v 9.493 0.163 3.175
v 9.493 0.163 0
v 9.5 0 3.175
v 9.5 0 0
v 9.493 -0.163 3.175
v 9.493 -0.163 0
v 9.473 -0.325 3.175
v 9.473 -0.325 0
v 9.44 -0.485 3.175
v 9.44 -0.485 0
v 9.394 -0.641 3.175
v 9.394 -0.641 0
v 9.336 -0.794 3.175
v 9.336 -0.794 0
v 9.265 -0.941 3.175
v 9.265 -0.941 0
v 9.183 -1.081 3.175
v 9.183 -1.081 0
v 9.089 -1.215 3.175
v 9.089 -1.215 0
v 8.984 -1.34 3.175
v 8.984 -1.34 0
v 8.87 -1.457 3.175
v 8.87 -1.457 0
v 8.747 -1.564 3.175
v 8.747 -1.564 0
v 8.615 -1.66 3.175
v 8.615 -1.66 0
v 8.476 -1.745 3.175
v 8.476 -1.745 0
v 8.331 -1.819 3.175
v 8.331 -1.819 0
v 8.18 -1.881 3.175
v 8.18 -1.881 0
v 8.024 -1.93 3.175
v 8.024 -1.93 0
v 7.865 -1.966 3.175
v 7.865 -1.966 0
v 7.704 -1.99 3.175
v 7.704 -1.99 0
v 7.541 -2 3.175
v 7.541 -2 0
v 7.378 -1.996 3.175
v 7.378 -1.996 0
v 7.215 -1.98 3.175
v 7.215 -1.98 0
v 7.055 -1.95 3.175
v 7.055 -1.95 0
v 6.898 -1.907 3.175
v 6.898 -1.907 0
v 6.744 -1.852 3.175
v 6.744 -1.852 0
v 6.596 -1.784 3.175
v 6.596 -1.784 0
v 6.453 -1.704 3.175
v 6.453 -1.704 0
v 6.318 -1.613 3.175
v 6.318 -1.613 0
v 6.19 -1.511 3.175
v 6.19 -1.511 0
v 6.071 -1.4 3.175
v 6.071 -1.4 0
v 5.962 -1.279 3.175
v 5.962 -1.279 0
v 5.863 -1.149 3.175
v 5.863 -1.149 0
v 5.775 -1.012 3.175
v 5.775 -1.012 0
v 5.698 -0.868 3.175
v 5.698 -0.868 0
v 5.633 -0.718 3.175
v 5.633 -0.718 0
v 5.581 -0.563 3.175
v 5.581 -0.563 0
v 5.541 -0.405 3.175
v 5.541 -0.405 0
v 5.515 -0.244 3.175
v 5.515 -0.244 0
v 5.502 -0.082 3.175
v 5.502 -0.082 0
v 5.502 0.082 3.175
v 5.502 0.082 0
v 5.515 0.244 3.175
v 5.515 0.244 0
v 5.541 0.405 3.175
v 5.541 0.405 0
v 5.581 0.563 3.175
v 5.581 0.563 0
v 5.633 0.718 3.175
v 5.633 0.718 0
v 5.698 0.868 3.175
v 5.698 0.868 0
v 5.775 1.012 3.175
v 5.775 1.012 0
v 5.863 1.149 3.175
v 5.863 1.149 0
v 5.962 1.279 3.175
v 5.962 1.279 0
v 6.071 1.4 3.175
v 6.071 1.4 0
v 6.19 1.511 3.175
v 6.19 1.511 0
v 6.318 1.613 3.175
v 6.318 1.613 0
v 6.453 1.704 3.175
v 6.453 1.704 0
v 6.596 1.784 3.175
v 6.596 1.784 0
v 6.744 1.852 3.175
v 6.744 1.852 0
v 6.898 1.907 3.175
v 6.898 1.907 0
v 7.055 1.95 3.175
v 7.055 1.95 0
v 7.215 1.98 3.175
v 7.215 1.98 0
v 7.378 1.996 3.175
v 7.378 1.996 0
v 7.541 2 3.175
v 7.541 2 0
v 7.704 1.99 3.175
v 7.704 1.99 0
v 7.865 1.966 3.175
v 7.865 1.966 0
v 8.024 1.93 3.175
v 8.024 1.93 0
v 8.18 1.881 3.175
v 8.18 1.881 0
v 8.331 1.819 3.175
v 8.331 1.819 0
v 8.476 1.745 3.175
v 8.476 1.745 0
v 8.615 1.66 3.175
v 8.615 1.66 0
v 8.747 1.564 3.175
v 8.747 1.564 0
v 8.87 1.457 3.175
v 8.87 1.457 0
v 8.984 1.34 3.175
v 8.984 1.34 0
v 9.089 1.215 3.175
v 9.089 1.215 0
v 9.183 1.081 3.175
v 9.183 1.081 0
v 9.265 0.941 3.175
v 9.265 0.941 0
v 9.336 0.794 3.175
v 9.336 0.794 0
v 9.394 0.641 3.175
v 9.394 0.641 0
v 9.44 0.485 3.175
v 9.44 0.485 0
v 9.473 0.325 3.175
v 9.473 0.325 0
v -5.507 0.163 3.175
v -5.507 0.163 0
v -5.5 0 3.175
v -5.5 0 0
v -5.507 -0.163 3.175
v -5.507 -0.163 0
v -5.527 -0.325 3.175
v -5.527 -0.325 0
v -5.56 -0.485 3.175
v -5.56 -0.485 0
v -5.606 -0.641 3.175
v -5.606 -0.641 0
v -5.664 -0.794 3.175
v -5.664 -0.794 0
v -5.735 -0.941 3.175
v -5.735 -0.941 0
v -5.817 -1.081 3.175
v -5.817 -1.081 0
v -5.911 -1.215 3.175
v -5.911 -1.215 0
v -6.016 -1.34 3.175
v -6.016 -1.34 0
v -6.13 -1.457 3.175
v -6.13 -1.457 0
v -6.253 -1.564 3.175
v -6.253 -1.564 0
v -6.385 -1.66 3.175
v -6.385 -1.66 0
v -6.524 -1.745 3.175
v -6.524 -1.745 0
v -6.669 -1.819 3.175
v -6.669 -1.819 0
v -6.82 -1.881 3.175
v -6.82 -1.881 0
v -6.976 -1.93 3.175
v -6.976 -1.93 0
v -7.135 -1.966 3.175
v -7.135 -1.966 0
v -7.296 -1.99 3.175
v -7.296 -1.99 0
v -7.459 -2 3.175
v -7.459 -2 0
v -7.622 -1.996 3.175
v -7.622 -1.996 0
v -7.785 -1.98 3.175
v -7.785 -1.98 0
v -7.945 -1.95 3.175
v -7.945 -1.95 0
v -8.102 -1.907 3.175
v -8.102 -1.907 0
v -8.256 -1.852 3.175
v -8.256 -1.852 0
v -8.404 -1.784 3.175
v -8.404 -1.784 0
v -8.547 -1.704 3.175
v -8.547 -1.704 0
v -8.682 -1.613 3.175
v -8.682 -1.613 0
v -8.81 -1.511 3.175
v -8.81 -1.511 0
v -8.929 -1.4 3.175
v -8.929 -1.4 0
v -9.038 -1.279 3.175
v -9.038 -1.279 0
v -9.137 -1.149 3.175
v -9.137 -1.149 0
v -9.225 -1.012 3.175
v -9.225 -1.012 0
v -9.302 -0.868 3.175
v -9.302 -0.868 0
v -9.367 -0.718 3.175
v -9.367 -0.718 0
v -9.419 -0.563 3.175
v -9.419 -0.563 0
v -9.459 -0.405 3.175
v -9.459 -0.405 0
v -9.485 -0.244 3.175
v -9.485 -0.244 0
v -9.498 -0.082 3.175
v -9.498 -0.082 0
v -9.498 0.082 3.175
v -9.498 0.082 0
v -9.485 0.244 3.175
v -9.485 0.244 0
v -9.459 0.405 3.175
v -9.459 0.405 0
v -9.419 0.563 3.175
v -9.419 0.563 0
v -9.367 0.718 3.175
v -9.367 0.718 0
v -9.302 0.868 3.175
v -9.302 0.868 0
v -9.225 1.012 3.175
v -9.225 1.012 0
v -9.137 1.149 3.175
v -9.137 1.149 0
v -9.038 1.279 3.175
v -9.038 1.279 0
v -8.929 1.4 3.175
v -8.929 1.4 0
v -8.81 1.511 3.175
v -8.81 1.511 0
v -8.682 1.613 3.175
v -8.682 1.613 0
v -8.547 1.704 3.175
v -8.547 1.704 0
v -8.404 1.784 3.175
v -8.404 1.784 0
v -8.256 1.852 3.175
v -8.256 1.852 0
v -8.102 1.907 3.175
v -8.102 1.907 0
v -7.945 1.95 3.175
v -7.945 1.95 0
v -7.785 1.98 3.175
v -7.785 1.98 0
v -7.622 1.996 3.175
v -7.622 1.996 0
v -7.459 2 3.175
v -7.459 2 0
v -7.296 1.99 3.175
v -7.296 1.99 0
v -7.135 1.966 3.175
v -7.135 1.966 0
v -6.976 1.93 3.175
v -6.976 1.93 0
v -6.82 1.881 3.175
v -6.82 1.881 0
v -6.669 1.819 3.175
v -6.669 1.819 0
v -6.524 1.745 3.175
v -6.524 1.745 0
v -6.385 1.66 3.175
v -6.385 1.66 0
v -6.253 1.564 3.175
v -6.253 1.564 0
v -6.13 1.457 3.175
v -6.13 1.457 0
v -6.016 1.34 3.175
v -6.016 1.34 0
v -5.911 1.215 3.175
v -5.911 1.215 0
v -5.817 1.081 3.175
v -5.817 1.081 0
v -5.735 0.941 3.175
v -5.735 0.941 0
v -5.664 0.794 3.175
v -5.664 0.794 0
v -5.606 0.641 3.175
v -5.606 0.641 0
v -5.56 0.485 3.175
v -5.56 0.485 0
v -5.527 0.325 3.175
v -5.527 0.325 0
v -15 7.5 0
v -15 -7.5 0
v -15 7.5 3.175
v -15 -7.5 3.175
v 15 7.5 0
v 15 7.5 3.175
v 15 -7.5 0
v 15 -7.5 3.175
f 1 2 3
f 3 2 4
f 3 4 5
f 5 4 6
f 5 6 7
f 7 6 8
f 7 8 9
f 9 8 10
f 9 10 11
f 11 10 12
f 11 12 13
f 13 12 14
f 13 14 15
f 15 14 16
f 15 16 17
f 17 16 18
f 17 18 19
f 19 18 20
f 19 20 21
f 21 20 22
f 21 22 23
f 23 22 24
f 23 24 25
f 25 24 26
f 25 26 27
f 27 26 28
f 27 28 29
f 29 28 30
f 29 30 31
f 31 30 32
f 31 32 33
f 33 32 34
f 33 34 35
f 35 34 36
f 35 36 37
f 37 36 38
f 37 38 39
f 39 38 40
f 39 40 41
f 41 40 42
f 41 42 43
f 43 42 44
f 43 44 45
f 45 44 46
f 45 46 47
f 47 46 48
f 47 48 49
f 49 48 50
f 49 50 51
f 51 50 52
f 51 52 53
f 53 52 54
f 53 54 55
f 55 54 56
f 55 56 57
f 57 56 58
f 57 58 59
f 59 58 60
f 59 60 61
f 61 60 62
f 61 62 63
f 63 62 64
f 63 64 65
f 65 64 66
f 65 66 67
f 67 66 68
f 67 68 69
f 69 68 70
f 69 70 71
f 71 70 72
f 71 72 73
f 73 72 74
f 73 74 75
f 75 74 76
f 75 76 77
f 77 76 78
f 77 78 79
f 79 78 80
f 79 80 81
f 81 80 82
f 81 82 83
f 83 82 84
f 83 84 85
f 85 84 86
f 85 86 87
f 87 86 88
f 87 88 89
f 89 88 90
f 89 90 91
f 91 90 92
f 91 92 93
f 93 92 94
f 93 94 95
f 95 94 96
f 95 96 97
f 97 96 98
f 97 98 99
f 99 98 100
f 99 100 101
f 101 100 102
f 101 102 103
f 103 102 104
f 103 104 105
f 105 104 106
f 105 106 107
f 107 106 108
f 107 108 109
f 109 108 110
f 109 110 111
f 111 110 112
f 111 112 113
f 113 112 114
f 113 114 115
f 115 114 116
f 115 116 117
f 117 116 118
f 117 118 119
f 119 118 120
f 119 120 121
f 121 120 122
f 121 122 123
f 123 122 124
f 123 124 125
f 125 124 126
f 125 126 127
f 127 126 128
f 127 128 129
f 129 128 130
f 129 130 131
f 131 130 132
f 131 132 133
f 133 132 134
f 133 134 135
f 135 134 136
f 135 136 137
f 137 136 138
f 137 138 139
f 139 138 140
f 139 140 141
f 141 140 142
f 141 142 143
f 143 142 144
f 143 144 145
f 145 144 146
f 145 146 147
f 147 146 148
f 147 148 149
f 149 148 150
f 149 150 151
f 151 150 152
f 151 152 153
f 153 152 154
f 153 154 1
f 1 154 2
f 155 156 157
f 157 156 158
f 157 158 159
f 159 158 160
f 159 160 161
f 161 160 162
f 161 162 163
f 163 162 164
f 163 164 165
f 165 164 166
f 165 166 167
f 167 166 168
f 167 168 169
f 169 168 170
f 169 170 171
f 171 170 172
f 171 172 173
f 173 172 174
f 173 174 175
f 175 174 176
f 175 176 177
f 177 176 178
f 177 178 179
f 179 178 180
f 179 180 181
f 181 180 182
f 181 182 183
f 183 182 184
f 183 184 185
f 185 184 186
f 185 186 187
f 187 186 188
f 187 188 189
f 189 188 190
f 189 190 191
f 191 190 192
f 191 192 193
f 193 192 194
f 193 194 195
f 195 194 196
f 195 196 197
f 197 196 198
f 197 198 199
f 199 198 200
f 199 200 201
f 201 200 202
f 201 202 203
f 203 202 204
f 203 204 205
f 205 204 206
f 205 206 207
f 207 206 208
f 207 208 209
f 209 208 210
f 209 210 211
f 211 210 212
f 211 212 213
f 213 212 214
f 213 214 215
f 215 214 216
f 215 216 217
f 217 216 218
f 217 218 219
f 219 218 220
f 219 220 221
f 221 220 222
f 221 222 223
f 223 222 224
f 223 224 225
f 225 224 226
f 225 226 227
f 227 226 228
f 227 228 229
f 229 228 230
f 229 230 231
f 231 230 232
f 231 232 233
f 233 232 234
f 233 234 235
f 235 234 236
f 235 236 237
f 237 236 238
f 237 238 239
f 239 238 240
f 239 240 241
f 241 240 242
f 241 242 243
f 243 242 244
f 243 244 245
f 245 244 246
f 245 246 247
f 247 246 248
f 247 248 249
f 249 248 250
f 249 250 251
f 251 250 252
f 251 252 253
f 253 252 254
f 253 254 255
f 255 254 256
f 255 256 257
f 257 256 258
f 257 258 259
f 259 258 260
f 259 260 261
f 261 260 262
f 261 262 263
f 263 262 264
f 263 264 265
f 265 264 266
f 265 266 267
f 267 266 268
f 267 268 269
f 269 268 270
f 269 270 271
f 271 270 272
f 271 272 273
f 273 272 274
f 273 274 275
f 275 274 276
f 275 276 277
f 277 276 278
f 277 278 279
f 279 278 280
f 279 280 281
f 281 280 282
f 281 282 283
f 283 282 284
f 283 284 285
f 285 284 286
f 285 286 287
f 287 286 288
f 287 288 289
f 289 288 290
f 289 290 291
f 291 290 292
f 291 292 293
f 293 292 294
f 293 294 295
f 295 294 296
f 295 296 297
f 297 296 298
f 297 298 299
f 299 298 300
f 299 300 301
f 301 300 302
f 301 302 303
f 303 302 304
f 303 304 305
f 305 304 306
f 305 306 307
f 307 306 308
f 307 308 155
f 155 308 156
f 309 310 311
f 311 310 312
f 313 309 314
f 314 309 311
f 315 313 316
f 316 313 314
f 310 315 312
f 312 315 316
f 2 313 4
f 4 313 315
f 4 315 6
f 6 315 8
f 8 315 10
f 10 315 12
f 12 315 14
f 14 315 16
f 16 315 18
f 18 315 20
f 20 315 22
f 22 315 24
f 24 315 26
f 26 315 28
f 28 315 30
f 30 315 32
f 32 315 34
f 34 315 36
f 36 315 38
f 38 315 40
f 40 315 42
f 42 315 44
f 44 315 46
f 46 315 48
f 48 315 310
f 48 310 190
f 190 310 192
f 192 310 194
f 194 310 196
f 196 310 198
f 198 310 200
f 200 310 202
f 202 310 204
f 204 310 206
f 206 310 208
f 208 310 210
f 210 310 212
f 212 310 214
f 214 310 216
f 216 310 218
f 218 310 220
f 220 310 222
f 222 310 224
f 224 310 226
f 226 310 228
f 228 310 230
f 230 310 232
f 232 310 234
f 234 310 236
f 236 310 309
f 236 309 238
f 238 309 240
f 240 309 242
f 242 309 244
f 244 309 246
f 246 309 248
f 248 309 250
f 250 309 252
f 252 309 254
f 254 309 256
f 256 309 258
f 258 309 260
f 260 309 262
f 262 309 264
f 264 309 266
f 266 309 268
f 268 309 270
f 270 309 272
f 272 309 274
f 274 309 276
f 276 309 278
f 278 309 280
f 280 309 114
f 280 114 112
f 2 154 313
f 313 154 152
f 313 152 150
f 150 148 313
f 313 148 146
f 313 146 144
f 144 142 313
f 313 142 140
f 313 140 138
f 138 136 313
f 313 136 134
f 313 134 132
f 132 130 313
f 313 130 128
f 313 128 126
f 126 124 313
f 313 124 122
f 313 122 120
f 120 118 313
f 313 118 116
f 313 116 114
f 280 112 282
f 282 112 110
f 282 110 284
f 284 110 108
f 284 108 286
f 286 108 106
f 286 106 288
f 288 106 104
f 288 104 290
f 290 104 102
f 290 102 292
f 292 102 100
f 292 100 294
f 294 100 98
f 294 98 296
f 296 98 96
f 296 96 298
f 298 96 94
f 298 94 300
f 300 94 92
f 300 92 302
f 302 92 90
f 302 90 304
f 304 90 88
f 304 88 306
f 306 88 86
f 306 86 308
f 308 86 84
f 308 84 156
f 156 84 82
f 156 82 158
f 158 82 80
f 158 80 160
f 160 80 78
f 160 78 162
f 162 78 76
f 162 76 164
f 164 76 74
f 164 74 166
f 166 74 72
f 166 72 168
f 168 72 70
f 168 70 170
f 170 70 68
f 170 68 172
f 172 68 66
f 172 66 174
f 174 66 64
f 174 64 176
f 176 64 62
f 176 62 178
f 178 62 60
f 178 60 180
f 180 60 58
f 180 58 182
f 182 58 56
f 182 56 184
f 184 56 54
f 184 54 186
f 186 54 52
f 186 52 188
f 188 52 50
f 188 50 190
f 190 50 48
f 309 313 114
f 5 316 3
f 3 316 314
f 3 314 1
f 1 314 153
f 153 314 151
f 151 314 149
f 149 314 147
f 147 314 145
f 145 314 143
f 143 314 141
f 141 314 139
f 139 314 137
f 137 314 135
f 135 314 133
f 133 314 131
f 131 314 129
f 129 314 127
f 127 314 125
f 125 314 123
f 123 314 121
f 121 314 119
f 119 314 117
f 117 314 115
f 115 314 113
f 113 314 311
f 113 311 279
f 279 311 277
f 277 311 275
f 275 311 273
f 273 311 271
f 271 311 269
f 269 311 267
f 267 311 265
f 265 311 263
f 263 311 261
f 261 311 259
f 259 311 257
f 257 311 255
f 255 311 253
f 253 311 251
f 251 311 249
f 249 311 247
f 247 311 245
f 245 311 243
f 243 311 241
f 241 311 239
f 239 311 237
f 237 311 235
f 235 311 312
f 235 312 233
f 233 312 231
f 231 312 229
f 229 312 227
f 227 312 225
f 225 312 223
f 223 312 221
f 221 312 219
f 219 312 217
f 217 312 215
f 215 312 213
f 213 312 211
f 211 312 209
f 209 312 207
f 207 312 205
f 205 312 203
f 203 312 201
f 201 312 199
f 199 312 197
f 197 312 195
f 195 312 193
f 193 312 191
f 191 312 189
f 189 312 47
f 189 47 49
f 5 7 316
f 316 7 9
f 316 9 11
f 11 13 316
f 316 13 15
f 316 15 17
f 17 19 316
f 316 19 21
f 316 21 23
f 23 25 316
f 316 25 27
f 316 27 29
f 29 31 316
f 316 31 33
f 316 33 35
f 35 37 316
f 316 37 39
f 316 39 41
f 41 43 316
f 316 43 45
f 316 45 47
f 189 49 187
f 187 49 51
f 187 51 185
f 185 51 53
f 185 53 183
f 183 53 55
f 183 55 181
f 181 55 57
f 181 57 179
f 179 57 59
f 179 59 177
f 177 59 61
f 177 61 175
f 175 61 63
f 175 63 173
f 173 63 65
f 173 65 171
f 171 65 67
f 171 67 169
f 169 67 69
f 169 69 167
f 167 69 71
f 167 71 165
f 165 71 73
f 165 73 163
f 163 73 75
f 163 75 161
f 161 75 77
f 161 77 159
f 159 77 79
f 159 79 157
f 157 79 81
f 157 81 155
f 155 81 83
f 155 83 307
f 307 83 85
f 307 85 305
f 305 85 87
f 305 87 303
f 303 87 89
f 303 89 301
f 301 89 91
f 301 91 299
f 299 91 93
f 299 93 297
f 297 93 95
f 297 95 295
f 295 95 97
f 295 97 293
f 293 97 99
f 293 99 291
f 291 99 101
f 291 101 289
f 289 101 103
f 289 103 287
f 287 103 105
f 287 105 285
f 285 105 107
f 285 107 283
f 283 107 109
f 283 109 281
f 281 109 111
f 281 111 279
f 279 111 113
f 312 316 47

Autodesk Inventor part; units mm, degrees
ref_plane "YZ Plane" through (0, 0, 0) normal (1, 0, 0) x (0, 1, 0)
ref_plane "XZ Plane" through (0, 0, 0) normal (0, 1, 0) x (-1, 0, 0)
ref_plane "XY Plane" through (0, 0, 0) normal (0, 0, 1) x (1, 0, 0)
sketch "Sketch1" plane through (0, 0, 0) normal (0, 0, 1) x (1, 0, 0)
  line L0 (15, -7.5) -> (-15, -7.5)
  line L1 (-15, -7.5) -> (-15, 7.5)
  line L2 (-15, 7.5) -> (15, 7.5)
  line L3 (15, 7.5) -> (15, -7.5)
  line L4 (15, -7.5) -> (-15, 7.5) construction
  line L5 (-15, -7.5) -> (15, 7.5) construction
  circle A0 centre (-7.5, 0) radius 2
  circle A1 centre (7.5, 0) radius 2
  line L6 (-21, 0) -> (21, 0) projected
  line L7 (0, -10.5) -> (0, 10.5) projected
  line L8 (-7.5, 0) -> (7.5, 0)
  point P0 (0, 0)
  point P1 (0, 0)
  dimension "d10" = 30
  dimension "d11" = 15
  dimension "d12" = 4
  dimension "d13" = 15
extrude "Extrusion1" add sketch "Sketch1" along normal blind 3.175 contours L0 L7 L6 A1 L3 | L0 L1 L6 A0 L7 | L6 A1 L7 L2 L3 | L6 A0 L1 L2 L7
properties part number "soportes celda de carga"
